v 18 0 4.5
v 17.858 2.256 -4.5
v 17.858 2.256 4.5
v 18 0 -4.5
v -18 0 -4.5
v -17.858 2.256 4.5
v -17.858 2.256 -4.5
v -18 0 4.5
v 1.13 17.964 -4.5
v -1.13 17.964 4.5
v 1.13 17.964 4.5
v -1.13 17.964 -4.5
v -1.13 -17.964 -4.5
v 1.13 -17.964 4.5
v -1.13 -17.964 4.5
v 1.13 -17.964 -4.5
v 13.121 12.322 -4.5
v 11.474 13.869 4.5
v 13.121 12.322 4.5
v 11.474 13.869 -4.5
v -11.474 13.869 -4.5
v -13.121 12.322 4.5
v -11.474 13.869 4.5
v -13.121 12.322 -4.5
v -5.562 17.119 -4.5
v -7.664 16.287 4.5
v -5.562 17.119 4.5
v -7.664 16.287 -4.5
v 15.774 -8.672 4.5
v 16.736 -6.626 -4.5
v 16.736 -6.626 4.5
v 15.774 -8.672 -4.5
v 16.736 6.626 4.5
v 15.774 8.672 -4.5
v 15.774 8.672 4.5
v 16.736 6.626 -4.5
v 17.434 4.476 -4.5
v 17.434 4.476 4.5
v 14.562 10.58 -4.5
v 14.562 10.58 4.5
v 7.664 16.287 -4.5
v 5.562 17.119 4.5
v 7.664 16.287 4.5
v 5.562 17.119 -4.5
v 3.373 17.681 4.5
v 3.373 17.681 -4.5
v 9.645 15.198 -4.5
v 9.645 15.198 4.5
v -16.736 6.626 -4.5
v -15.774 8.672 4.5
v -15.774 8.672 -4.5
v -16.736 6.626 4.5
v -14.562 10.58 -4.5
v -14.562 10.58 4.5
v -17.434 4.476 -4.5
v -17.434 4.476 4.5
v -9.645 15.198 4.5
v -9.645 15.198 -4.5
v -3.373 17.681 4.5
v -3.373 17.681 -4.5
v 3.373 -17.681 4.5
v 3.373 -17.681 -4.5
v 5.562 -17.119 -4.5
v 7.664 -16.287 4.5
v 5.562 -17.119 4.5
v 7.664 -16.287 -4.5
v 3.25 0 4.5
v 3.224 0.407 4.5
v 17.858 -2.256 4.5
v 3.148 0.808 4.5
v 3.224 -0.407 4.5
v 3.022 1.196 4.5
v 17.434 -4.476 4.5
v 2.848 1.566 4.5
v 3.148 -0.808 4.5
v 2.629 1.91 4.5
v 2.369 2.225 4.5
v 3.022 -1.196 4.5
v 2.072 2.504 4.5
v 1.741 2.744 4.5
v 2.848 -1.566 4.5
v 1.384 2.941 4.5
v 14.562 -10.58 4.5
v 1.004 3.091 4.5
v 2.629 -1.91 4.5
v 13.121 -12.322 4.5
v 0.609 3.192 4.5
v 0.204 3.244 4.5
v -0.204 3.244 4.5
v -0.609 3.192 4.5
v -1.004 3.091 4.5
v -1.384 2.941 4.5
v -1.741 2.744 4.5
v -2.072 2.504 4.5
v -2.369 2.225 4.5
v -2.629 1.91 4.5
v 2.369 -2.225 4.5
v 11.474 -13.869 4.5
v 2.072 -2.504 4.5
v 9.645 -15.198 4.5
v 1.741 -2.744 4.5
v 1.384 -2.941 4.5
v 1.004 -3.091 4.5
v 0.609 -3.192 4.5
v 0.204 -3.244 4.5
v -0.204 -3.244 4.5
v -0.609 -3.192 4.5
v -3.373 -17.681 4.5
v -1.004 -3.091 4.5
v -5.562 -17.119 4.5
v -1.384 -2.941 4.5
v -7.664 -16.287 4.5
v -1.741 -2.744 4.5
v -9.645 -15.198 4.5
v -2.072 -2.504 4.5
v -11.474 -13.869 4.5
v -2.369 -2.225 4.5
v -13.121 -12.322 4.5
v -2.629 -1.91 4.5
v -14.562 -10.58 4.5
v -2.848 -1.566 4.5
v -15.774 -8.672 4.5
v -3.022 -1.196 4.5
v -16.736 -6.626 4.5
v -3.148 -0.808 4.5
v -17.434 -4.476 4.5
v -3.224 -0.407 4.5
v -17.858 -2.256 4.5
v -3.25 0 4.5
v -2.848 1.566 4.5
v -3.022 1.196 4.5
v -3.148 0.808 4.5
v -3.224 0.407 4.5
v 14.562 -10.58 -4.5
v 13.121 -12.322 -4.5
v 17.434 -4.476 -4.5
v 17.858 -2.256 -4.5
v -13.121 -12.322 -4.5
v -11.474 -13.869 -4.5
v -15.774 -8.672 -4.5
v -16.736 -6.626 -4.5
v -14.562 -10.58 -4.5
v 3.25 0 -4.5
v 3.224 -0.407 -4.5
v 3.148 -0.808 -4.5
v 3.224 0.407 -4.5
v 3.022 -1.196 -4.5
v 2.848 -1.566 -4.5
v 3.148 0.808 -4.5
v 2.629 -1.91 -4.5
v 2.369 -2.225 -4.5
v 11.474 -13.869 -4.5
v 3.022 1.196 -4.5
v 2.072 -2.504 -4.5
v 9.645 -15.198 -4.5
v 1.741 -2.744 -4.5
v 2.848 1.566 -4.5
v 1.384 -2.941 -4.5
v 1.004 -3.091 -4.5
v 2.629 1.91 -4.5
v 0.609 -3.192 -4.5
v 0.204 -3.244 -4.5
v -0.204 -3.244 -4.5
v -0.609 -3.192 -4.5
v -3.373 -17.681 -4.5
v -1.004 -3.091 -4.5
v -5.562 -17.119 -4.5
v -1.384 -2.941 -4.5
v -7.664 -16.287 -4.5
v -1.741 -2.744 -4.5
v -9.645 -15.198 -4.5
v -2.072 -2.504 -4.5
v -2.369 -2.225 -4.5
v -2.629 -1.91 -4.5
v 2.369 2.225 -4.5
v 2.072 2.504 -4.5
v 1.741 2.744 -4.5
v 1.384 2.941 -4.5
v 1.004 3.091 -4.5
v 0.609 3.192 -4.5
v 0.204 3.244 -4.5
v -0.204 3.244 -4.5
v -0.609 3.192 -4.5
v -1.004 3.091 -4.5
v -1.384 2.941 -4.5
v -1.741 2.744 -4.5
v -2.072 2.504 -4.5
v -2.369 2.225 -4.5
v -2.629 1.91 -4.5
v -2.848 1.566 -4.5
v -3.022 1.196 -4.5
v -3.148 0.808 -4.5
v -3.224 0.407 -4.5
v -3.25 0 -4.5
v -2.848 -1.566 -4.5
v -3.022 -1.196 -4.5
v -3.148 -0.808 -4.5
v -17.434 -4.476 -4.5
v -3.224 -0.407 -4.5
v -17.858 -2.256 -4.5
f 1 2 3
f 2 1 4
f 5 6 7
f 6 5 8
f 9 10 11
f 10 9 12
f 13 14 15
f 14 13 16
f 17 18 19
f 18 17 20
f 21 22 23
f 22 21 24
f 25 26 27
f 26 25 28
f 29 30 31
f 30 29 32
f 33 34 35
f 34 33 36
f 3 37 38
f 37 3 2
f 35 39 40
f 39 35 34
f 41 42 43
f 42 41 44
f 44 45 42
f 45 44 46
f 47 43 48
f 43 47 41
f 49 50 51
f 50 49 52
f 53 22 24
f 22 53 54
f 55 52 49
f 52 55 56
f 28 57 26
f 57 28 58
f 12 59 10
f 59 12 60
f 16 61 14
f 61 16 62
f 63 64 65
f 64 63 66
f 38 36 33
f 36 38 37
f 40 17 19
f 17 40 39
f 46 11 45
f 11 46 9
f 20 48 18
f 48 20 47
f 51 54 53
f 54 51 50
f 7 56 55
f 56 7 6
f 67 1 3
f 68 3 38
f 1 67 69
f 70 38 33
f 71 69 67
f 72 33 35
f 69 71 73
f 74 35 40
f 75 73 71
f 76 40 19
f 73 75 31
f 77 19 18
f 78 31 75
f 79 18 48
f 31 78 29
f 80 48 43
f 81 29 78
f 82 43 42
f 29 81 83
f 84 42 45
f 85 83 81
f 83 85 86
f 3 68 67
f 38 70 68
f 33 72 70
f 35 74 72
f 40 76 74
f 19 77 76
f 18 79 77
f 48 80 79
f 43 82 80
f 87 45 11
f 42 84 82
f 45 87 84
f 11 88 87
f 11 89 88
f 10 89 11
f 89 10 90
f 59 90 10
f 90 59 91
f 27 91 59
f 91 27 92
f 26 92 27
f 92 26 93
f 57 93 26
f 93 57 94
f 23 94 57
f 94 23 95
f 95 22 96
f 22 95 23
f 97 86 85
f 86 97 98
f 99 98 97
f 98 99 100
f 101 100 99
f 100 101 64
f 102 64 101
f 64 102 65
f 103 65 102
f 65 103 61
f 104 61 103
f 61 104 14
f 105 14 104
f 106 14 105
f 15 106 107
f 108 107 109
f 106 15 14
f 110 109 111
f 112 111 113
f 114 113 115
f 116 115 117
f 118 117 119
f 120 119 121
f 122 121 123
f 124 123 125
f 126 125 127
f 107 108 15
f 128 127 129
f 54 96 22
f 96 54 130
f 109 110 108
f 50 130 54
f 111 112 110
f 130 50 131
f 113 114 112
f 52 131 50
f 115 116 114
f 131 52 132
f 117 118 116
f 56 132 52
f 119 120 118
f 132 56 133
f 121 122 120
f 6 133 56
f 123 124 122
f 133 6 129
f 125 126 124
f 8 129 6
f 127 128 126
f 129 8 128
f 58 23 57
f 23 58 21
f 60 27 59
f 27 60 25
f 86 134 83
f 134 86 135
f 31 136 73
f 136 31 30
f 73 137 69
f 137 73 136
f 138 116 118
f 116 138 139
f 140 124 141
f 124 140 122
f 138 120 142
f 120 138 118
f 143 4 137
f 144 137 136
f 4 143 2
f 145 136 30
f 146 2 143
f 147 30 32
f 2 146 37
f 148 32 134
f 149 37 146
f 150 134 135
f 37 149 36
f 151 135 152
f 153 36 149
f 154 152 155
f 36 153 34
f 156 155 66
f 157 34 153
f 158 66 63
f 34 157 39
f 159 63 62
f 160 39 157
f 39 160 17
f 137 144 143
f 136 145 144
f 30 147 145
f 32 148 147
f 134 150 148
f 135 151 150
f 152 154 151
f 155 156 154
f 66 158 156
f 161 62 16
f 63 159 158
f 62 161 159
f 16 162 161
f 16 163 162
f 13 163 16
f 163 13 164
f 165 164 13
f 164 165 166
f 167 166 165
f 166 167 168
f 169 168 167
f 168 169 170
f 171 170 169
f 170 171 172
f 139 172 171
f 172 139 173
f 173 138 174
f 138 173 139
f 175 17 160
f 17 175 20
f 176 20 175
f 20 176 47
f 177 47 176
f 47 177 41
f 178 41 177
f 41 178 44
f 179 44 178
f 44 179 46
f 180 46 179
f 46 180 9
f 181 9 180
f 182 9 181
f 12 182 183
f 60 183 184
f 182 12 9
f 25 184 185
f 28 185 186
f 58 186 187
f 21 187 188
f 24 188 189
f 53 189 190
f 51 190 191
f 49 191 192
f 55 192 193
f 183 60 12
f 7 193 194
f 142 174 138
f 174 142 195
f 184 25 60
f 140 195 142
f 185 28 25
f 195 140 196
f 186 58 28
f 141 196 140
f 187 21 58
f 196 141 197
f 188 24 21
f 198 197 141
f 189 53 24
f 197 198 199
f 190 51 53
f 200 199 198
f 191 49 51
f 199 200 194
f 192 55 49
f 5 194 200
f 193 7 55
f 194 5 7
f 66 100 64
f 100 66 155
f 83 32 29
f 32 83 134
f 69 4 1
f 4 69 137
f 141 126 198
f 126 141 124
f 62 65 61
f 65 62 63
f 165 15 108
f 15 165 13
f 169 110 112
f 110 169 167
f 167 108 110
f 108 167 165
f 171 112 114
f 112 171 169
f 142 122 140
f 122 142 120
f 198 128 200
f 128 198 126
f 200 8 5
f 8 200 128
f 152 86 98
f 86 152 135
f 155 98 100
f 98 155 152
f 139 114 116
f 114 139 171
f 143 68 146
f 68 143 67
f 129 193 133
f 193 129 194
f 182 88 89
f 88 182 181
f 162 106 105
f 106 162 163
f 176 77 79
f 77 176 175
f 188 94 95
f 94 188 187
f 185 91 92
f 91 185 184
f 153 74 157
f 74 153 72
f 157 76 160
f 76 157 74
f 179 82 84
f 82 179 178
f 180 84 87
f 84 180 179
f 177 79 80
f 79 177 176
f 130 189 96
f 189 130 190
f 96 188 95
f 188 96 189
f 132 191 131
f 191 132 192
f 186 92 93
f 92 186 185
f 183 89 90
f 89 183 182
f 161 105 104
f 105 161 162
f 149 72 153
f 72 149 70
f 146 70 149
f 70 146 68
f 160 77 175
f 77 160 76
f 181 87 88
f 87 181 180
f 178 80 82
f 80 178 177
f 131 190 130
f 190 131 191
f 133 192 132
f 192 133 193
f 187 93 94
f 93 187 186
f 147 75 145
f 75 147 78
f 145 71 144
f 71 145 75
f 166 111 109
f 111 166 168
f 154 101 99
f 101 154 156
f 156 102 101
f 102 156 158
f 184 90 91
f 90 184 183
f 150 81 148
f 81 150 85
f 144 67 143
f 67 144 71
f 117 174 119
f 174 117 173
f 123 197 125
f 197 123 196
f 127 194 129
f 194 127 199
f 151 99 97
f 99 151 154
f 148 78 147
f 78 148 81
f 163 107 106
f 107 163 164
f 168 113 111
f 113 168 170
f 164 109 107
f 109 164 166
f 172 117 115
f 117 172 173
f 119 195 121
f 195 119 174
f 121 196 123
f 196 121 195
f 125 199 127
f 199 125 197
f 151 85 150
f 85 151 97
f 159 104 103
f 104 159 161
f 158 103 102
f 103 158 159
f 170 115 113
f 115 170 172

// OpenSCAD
$fn = 50;


difference() {
	union() {
		translate(v = [0, 0, -4.5000000000]) {
			cylinder(h = 9, r = 18.0000000000);
		}
	}
	union() {
		translate(v = [0, 0, -100.0000000000]) {
			cylinder(h = 200, r = 3.2500000000);
		}
	}
}
